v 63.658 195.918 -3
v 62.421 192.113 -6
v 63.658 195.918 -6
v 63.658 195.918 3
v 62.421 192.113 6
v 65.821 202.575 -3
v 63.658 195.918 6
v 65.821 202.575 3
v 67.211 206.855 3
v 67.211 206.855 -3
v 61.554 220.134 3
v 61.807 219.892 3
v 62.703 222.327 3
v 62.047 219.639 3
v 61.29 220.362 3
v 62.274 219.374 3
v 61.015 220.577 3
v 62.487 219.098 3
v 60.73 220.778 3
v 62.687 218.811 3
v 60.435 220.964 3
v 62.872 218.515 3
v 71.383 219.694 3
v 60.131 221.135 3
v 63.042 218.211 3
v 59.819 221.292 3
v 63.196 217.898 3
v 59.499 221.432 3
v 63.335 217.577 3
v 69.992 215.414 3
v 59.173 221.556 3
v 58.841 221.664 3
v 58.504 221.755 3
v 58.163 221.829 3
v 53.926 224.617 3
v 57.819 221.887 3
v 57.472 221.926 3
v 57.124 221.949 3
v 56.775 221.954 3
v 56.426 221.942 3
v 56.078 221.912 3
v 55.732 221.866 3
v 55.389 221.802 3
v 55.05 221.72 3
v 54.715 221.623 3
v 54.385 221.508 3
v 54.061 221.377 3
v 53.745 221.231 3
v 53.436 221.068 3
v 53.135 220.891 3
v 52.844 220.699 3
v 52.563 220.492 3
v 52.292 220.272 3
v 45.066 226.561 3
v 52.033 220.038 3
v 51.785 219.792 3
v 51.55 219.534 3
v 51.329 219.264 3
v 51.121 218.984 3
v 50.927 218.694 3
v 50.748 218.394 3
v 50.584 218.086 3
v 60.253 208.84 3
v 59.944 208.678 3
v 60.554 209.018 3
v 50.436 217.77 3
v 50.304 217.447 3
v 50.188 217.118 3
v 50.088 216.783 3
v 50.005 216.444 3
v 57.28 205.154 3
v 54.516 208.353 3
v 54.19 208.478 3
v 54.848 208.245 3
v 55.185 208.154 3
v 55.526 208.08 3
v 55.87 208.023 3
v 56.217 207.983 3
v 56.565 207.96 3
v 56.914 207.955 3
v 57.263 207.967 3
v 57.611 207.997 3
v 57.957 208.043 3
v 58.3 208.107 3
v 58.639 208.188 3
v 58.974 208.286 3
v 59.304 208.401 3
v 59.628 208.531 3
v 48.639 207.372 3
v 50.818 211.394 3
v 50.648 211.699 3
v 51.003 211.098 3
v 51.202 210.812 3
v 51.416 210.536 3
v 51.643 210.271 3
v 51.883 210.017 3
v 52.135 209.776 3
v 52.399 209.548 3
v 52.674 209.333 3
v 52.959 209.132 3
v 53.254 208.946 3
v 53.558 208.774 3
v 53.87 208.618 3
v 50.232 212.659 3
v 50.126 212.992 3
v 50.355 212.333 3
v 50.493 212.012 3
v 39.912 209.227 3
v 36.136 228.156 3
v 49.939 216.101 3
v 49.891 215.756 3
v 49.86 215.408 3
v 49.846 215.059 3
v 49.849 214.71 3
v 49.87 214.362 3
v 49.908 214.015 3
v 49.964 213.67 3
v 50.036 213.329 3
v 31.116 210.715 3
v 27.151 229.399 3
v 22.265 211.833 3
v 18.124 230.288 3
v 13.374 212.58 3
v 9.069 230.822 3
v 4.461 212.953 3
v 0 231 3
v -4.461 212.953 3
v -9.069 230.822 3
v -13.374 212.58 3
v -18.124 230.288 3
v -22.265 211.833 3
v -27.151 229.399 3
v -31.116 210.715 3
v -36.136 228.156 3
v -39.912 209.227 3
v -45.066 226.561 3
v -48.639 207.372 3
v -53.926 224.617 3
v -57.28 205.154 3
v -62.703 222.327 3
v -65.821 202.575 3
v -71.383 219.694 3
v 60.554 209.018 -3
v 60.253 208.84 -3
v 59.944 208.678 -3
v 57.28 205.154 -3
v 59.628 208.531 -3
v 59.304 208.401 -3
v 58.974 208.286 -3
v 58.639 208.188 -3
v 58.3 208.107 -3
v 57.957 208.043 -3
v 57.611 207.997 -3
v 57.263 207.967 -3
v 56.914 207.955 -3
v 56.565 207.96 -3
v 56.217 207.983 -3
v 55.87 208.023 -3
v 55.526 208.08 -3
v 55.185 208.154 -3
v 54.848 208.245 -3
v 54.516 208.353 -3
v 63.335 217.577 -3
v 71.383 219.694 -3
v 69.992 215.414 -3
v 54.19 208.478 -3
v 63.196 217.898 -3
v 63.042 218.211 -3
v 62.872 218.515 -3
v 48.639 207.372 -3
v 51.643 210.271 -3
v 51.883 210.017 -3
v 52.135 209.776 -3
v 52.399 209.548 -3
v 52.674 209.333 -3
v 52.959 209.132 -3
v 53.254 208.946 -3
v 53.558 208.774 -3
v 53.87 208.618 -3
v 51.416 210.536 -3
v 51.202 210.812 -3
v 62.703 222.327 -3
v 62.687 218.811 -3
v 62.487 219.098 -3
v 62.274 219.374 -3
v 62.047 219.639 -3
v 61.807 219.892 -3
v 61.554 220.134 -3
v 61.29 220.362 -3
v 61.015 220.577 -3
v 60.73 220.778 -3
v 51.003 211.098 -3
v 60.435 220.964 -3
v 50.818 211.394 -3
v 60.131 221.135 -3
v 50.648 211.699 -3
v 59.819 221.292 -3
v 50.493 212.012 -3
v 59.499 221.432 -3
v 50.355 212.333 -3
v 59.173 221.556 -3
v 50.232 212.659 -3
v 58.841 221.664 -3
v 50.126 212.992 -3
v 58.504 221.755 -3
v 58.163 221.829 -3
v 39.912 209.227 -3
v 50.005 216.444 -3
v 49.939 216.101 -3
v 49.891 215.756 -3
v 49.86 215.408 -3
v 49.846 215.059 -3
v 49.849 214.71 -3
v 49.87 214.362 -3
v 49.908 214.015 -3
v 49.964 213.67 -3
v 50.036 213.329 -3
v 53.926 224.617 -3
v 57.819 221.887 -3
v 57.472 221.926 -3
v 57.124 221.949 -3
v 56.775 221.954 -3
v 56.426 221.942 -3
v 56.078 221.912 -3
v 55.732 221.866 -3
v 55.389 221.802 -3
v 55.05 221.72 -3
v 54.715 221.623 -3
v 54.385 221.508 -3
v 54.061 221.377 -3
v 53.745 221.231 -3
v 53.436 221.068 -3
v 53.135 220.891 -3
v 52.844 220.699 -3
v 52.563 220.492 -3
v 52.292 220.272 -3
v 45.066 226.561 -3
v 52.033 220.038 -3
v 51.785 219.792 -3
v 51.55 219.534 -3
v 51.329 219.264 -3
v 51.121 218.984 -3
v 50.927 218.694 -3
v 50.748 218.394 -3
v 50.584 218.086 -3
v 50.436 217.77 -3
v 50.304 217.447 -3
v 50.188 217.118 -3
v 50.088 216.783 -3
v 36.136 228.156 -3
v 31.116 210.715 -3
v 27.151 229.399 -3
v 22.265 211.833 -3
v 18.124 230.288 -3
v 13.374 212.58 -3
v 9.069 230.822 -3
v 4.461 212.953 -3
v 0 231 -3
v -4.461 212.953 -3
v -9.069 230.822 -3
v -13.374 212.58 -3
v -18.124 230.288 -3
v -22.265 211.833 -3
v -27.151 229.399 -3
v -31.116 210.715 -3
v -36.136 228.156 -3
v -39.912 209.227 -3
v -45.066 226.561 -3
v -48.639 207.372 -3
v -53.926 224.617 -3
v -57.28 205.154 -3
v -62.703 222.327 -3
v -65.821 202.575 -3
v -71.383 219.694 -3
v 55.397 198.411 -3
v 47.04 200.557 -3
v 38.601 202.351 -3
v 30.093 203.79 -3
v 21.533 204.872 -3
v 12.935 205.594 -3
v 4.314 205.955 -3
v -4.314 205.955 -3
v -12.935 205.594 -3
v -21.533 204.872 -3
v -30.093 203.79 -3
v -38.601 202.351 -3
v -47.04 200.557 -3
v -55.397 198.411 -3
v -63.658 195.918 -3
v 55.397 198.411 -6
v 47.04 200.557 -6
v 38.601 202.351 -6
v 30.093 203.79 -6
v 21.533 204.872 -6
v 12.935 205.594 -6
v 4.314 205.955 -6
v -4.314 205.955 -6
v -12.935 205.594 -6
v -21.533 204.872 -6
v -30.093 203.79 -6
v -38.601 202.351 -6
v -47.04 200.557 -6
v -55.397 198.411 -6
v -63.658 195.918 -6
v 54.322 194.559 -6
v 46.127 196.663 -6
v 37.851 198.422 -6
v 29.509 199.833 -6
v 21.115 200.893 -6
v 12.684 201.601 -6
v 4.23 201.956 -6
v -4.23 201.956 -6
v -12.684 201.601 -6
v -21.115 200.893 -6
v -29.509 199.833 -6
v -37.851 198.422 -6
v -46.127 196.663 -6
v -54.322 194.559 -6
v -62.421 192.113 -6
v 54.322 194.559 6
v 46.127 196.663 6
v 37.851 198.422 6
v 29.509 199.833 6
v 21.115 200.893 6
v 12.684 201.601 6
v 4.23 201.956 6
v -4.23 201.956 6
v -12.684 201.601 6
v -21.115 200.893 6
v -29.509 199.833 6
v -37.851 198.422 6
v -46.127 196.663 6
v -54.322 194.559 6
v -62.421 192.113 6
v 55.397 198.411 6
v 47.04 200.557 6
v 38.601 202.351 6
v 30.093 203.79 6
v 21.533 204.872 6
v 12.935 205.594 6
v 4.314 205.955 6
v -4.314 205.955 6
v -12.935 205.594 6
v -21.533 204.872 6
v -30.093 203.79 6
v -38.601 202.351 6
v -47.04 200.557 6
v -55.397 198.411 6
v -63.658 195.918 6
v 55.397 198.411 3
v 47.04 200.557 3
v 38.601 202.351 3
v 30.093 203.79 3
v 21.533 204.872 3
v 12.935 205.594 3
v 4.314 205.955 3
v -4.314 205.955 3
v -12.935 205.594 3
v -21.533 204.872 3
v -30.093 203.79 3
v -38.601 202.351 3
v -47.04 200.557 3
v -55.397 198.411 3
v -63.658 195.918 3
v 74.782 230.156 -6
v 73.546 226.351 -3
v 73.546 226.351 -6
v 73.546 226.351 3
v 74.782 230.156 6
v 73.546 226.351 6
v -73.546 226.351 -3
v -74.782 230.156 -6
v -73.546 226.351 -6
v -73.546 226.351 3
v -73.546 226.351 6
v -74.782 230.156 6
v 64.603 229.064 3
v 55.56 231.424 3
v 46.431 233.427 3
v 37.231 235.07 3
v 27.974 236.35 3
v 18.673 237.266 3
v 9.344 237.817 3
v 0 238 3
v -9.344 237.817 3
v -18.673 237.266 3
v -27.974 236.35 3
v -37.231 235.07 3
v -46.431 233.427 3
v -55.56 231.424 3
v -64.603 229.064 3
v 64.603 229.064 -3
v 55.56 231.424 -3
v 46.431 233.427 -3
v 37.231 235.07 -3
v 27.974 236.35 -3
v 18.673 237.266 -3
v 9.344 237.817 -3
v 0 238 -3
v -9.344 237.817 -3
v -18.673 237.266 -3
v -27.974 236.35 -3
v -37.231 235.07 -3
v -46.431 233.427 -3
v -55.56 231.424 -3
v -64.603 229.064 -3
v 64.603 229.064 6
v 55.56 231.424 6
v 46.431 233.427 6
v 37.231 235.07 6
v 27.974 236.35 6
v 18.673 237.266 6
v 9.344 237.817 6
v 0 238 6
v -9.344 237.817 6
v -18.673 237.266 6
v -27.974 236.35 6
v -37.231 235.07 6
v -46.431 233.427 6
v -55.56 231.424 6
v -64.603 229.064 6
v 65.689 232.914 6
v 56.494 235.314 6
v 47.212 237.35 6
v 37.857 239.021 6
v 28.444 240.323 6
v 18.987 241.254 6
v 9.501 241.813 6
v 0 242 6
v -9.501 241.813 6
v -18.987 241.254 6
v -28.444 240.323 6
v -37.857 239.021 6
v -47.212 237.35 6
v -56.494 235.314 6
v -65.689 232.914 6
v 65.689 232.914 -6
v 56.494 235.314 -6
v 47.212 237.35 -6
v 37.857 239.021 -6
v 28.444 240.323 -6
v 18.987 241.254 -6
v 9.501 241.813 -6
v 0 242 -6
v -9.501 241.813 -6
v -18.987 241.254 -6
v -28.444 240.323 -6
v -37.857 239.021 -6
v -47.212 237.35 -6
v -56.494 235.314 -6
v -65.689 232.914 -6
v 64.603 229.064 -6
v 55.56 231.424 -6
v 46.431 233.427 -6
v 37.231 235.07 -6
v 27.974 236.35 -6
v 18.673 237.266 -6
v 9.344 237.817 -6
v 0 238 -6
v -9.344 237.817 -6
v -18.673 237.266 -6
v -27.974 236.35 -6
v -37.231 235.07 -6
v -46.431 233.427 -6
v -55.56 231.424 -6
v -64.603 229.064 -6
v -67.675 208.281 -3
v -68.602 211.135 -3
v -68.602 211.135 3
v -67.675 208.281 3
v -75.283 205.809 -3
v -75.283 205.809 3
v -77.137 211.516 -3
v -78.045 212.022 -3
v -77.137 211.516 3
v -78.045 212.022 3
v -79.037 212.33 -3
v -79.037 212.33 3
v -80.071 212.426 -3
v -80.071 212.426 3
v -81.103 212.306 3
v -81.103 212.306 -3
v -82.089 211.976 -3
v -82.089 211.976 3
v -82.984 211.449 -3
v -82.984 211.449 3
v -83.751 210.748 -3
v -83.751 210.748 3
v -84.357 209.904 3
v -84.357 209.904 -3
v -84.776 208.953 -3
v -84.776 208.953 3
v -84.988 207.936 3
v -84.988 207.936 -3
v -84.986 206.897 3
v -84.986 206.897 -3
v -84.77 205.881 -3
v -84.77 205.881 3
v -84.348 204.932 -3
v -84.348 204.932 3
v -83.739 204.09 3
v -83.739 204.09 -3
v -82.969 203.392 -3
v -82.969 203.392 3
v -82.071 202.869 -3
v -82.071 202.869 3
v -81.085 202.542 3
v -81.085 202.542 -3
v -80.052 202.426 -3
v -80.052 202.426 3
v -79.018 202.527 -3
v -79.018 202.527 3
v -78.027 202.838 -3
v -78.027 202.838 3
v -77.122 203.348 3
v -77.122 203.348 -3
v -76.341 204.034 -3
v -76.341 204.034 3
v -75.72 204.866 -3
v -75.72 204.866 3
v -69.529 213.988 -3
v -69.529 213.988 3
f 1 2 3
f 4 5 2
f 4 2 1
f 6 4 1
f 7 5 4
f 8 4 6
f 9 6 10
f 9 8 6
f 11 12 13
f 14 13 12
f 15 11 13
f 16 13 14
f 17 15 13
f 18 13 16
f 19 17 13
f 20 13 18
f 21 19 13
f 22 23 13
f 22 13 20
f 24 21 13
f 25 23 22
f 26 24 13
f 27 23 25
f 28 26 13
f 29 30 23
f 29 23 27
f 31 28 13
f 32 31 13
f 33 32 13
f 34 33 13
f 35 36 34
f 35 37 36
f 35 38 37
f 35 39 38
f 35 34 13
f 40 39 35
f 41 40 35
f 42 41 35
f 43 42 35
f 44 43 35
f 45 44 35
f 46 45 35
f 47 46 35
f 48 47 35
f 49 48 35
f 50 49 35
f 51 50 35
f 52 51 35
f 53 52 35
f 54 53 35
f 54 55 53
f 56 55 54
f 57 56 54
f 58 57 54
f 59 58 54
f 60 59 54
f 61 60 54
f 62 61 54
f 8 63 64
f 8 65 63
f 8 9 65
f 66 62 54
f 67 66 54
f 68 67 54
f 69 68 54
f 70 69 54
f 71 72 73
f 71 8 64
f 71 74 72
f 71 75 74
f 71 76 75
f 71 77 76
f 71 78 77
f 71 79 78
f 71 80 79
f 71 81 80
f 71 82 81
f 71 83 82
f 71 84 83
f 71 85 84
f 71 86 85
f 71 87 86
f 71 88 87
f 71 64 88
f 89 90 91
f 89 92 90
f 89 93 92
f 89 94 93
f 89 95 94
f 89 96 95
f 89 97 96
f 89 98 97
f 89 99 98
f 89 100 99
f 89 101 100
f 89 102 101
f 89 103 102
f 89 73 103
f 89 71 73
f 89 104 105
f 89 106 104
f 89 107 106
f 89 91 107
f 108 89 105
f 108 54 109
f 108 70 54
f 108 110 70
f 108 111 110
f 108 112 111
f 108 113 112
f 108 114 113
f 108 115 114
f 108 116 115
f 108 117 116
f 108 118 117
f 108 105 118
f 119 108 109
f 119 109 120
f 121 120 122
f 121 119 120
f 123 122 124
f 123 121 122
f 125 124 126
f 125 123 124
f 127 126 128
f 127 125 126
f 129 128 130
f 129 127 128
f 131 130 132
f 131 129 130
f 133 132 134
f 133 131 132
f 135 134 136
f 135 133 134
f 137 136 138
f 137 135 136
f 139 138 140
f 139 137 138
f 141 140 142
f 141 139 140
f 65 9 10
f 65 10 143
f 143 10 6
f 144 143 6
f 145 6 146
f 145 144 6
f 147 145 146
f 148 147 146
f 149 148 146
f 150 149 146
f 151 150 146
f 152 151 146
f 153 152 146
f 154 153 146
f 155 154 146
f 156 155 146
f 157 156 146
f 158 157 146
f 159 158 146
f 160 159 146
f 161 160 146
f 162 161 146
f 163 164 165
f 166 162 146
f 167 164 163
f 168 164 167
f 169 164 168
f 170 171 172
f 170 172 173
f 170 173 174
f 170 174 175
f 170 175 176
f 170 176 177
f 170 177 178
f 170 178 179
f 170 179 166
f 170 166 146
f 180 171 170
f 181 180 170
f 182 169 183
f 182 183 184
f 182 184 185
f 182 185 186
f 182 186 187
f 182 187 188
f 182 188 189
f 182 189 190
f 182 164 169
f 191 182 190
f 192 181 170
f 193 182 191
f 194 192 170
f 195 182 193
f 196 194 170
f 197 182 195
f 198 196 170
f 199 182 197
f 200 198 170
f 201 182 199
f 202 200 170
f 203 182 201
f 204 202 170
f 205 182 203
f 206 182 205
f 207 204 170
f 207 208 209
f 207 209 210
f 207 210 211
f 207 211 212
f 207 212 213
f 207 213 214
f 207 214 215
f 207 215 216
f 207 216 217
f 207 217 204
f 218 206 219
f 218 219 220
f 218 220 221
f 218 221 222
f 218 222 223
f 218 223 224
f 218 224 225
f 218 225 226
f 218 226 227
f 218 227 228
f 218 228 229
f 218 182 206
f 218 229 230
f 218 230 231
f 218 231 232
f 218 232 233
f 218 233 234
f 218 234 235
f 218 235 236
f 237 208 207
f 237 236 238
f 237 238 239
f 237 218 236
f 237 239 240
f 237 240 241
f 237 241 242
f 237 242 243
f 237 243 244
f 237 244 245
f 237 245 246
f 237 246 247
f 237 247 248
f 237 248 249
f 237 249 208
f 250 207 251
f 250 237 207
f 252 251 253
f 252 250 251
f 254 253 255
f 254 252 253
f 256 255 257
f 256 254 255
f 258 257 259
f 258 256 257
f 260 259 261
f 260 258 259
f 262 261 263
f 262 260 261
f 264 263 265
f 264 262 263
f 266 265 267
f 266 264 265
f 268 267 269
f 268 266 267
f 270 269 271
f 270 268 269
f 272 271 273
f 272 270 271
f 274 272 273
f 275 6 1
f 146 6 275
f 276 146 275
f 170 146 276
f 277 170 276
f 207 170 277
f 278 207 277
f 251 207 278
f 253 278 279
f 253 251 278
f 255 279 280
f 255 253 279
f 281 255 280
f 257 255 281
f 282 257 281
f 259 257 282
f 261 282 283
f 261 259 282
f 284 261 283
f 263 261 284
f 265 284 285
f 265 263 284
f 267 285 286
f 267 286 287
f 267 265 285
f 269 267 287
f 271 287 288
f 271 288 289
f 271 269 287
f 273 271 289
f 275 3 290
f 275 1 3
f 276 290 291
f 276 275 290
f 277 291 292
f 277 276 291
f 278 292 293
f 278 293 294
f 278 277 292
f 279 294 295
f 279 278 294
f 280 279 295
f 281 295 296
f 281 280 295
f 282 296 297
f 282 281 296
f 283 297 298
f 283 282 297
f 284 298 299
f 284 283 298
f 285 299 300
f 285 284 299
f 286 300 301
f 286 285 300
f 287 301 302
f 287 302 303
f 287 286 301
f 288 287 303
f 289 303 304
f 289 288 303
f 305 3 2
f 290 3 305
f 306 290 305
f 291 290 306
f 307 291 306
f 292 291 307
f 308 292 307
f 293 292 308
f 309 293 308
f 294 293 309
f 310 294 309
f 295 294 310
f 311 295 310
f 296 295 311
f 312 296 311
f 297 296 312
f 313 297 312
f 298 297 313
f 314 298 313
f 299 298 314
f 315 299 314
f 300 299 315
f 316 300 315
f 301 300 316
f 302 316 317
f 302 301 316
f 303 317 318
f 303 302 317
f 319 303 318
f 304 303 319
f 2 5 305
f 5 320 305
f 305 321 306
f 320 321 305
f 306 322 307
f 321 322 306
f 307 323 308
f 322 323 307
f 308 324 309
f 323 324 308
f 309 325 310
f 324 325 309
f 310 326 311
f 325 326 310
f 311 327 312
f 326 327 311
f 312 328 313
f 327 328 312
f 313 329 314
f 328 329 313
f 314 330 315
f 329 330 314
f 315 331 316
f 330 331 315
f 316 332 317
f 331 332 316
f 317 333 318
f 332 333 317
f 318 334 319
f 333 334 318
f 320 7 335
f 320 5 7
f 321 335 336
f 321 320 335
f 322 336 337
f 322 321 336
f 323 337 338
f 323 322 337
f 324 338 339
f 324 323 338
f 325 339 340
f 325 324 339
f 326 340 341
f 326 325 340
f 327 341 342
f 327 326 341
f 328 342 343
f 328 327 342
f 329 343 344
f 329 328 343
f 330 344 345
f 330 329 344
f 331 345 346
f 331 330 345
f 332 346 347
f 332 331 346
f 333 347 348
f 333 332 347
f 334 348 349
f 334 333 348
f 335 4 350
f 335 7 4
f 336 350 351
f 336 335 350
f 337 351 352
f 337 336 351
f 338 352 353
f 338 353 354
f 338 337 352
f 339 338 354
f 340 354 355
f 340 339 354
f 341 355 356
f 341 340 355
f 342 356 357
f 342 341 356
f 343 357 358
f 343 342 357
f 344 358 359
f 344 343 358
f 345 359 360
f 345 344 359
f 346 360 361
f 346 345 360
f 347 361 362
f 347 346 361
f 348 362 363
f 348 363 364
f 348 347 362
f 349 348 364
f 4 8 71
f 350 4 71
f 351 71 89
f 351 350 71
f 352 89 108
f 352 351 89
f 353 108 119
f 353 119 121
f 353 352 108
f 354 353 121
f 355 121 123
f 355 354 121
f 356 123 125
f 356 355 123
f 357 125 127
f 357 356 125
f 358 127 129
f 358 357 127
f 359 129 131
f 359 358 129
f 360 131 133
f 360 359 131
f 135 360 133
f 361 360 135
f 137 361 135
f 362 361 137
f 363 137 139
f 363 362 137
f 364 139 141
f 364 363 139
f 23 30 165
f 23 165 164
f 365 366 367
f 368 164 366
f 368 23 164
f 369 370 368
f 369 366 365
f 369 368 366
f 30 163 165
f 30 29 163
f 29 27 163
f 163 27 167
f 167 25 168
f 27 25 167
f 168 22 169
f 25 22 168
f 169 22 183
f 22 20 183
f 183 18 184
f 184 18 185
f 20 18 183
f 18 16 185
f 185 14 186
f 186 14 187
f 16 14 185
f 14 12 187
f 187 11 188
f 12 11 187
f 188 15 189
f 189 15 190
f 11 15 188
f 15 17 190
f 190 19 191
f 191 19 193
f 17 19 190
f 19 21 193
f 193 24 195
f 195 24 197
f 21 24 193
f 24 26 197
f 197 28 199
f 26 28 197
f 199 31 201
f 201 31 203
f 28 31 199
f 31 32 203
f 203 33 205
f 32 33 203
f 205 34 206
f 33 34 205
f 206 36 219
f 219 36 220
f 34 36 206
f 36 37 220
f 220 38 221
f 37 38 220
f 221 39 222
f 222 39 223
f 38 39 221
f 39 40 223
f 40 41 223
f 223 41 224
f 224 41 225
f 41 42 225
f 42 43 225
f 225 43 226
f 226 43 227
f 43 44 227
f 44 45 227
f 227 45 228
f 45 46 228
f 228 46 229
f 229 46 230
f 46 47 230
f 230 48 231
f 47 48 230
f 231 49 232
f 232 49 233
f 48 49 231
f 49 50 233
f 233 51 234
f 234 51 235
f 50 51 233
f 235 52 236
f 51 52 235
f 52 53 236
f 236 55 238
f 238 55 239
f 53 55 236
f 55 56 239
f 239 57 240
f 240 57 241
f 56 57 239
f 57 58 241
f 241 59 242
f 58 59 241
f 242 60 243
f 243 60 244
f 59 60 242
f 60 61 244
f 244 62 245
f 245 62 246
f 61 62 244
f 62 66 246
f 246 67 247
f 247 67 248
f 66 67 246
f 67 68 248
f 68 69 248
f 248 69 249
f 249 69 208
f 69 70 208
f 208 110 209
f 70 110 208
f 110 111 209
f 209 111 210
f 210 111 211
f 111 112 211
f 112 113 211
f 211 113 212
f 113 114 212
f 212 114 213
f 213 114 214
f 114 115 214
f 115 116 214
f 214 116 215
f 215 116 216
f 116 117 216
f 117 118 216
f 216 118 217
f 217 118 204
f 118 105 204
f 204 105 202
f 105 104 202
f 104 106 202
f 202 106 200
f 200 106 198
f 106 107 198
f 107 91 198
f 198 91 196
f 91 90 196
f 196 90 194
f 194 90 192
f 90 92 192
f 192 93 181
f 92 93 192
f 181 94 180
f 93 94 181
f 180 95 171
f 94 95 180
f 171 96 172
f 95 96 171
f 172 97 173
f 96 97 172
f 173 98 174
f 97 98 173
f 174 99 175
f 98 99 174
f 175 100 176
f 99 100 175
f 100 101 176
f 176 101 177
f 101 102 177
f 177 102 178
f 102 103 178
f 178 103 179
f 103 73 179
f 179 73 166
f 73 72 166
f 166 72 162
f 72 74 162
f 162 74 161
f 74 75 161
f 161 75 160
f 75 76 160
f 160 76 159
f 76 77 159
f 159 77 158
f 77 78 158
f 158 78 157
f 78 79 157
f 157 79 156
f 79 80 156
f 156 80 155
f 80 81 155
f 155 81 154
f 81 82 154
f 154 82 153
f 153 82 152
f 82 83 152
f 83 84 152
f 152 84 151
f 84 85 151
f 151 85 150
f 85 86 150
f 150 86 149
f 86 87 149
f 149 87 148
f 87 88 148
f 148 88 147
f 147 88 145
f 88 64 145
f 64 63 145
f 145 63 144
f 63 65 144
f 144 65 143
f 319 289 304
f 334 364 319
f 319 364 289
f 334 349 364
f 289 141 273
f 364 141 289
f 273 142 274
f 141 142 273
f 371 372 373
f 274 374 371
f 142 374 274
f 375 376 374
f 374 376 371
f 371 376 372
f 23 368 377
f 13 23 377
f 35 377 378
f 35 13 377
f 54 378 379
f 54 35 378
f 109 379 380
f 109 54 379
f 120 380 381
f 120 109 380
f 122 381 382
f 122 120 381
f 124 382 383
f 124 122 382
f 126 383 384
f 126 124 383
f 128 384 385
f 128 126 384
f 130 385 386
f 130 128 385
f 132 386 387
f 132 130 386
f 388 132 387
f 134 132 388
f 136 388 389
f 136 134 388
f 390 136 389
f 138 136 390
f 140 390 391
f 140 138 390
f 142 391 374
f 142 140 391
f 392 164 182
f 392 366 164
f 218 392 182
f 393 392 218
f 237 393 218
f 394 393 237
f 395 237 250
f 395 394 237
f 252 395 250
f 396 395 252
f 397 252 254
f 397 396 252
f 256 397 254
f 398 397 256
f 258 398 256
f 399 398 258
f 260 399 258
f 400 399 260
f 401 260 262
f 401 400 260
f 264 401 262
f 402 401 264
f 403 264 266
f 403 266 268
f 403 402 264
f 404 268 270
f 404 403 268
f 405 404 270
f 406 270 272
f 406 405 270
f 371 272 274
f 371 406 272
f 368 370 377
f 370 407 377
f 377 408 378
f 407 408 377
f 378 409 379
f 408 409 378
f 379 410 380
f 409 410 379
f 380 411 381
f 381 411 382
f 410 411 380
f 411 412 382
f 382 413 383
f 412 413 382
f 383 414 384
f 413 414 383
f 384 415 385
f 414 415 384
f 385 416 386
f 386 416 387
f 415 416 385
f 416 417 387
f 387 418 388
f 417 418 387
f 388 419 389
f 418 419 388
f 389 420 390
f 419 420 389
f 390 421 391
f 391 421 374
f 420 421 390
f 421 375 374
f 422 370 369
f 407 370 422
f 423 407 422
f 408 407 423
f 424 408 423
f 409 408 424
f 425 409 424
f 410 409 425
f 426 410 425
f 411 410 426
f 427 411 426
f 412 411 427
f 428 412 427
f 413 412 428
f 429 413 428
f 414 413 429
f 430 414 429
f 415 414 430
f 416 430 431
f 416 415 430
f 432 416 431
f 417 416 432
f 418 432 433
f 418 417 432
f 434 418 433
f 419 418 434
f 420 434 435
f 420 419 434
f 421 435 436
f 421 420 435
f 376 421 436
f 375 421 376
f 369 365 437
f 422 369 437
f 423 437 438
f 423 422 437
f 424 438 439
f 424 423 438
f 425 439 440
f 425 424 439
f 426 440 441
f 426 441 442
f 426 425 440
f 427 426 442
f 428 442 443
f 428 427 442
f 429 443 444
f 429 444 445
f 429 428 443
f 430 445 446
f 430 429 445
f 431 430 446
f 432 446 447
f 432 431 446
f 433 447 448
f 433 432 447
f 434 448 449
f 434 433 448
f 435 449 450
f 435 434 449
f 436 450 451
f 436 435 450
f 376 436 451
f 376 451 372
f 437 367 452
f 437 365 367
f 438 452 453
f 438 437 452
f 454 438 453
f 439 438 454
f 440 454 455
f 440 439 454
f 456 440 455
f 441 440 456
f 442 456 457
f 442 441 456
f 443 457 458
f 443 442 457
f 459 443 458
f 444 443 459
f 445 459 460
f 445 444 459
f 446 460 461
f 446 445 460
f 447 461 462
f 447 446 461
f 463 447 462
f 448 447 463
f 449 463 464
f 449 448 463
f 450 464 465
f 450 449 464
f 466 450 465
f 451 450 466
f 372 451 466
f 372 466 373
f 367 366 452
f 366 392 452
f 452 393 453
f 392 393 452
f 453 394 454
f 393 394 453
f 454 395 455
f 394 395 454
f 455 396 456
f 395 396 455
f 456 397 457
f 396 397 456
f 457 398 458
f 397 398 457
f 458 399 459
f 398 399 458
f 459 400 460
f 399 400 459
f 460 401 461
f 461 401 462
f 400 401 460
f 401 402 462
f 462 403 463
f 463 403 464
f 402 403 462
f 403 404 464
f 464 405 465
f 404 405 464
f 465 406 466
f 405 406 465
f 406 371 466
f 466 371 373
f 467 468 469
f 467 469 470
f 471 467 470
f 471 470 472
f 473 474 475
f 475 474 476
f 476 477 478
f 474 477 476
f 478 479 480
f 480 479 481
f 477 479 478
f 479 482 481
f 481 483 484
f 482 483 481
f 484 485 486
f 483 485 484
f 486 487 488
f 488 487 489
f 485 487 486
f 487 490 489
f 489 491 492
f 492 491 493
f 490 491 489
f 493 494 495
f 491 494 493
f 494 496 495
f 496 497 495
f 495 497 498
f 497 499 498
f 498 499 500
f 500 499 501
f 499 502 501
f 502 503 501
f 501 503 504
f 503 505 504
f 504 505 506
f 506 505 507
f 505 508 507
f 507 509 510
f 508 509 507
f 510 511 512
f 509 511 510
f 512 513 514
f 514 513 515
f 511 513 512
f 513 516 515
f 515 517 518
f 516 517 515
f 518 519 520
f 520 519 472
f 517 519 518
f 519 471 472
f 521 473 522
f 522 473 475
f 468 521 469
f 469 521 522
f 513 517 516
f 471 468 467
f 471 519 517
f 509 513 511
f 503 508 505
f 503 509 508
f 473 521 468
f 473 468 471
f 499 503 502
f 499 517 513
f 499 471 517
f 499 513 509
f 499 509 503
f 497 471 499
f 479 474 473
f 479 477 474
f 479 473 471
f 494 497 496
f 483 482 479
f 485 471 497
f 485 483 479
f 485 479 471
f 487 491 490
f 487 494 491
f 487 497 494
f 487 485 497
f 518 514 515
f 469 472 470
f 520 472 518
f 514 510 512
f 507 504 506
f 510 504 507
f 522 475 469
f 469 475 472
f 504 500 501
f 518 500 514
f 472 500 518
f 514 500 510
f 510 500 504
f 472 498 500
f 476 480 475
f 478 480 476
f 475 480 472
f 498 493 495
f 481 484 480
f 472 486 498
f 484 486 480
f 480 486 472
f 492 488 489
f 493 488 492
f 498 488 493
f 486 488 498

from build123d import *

# Parameters (mm, degrees)
POCKET_DEPTH = 9.001
PAD_DEPTH    = 3


with BuildPart() as body:
    # AdditivePipe: sweep along a path in Sketch
    with BuildLine(Plane.XY) as additivepipe_path:
        ThreePointArc((68.601773, 211.134547), (0, 222), (-68.601773, 211.134547))
    # Sketch002 (on DatumPlane) → AdditivePipe (sweep)
    with BuildSketch(Plane(origin=(-68.601773, 211.134547, 0), x_dir=(-0.309017, 0.951057, 0), z_dir=(0.951057, 0.309017, 0))):
        Polygon((-20, 6), (-20, -6), (-16, -6), (-16, -3), (-9, -3), (9, -3), (16, -3), (16, -6), (20, -6), (20, 6), (16, 6), (16, 3), (9, 3), (-9, 3), (-16, 3), (-16, 6), align=None)
    sweep(path=additivepipe_path.line)

    # Sketch004 (on Face18 of AdditivePipe) → Pocket (cut, through all)
    with BuildSketch(Plane(origin=(-68.601773, 211.134547, 3), x_dir=(0.309017, -0.951057, 0), z_dir=(0, 0, 1))):
        with BuildLine():
            Line((38.757651, 133.13336), (46.038804, 127.843292))
            Line((46.038804, 127.843292), (41.924307, 122.180173))
            ThreePointArc((34.643154, 127.470241), (31.017586, 114.824218), (41.924307, 122.180173))
            Line((38.757651, 133.13336), (34.643154, 127.470241))
        make_face()
    extrude(amount=-POCKET_DEPTH, mode=Mode.SUBTRACT)


with BuildPart() as body001:
    # Sketch003 → Pad (new body, symmetric)
    with BuildSketch(Plane.XY):
        with BuildLine():
            Line((-68.601773, 211.134547), (-67.674722, 208.281377))
            Line((-67.674722, 208.281377), (-75.283174, 205.809241))
            ThreePointArc((-77.137276, 211.51558), (-84.769734, 205.881258), (-75.283174, 205.809241))
            Line((-69.528824, 213.987716), (-77.137276, 211.51558))
            Line((-68.601773, 211.134547), (-69.528824, 213.987716))
        make_face()
    extrude(amount=PAD_DEPTH, both=True)


solid = Compound([body.part, body001.part])
